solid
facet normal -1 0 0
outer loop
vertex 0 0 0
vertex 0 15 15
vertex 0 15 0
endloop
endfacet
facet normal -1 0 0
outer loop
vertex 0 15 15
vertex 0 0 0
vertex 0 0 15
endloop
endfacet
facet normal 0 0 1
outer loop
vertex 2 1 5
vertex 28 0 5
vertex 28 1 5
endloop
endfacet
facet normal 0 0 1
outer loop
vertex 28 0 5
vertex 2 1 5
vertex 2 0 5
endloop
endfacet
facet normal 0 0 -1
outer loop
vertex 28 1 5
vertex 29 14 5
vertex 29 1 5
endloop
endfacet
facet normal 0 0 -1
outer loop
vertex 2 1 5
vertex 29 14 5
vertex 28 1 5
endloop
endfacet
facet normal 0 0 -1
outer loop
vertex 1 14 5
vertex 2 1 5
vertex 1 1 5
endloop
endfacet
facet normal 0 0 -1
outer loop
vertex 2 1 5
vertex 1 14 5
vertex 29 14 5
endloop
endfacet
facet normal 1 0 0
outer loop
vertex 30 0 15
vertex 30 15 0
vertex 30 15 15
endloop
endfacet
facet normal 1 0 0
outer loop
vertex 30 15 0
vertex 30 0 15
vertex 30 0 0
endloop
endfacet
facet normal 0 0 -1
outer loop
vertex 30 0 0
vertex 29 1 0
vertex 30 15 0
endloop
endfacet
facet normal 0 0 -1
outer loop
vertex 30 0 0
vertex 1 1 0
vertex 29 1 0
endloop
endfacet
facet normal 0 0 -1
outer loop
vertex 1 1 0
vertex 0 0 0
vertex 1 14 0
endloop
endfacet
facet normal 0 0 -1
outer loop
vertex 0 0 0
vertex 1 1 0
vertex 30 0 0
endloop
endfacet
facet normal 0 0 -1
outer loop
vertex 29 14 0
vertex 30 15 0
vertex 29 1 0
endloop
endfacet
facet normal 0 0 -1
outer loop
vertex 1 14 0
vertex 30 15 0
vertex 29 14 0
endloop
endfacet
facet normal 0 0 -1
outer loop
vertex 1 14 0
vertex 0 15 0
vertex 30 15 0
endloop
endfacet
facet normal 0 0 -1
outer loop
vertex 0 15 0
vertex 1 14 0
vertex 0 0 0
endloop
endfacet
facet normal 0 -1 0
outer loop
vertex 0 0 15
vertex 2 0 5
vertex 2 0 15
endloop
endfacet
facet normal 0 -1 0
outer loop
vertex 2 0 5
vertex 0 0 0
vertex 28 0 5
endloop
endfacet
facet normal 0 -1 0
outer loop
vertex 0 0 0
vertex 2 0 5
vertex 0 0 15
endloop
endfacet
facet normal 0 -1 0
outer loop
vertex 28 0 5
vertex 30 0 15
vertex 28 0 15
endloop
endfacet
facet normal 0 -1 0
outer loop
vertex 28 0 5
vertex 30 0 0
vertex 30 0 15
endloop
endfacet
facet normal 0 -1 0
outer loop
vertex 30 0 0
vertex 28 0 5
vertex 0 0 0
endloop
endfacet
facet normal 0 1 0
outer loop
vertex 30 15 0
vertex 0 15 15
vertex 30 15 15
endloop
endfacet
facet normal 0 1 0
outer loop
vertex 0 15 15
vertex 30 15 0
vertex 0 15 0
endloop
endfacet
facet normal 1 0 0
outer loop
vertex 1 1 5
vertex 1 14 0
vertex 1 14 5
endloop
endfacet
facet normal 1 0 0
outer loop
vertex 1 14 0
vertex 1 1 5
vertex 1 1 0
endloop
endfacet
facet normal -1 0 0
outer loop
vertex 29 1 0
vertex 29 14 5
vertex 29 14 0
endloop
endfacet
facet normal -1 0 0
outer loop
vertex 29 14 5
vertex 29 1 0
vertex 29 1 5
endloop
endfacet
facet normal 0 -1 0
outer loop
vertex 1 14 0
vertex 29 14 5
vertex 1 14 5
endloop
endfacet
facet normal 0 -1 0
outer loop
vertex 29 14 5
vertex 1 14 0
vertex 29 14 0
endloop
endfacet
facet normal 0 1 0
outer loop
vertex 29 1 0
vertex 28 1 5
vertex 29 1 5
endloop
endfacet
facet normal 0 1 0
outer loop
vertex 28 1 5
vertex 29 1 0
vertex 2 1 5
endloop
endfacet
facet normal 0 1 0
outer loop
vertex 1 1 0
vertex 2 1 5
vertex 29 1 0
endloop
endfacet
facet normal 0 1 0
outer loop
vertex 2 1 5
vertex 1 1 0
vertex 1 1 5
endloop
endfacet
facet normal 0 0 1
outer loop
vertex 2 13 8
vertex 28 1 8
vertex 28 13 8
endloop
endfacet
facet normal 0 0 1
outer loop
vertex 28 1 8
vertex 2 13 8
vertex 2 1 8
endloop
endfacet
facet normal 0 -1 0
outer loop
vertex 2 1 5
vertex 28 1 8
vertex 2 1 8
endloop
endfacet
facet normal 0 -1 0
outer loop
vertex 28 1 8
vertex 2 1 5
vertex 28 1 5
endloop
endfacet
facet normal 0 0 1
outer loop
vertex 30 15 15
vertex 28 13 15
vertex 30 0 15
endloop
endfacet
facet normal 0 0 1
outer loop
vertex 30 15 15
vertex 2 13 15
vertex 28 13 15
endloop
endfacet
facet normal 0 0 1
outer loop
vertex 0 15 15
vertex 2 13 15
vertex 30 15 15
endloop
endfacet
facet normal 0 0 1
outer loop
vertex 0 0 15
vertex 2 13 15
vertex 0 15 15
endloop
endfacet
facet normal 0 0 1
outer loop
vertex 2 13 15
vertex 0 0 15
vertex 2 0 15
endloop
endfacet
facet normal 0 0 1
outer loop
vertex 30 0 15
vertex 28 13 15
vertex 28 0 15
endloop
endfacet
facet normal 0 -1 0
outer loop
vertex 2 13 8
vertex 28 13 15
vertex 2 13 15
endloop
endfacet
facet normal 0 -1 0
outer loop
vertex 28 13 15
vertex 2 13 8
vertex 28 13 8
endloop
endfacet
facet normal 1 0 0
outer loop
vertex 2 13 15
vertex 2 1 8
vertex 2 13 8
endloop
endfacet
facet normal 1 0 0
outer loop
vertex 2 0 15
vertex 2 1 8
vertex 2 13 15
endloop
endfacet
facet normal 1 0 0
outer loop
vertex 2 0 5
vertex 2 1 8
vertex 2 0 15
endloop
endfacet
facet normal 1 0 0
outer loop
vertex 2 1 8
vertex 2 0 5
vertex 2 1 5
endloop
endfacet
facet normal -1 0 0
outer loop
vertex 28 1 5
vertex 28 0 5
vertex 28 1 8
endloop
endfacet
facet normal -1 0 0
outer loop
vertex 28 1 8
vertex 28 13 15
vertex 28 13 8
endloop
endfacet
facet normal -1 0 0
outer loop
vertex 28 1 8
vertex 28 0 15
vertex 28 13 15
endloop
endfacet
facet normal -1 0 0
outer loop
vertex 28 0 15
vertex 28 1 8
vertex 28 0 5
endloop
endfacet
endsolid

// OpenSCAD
// Couch base
difference() {
    cube([30, 15, 5]);
    translate([1, 1, -1]) cube([28, 13, 6]);
}

// Couch cushions
translate([1, 1, 5])
cube([28, 13, 3]);

// Couch back
translate([0, 13, 5])
cube([30, 2, 10]);

// Couch arms
translate([0, 0, 5])
cube([2, 15, 10]);
translate([28, 0, 5])
cube([2, 15, 10]);
